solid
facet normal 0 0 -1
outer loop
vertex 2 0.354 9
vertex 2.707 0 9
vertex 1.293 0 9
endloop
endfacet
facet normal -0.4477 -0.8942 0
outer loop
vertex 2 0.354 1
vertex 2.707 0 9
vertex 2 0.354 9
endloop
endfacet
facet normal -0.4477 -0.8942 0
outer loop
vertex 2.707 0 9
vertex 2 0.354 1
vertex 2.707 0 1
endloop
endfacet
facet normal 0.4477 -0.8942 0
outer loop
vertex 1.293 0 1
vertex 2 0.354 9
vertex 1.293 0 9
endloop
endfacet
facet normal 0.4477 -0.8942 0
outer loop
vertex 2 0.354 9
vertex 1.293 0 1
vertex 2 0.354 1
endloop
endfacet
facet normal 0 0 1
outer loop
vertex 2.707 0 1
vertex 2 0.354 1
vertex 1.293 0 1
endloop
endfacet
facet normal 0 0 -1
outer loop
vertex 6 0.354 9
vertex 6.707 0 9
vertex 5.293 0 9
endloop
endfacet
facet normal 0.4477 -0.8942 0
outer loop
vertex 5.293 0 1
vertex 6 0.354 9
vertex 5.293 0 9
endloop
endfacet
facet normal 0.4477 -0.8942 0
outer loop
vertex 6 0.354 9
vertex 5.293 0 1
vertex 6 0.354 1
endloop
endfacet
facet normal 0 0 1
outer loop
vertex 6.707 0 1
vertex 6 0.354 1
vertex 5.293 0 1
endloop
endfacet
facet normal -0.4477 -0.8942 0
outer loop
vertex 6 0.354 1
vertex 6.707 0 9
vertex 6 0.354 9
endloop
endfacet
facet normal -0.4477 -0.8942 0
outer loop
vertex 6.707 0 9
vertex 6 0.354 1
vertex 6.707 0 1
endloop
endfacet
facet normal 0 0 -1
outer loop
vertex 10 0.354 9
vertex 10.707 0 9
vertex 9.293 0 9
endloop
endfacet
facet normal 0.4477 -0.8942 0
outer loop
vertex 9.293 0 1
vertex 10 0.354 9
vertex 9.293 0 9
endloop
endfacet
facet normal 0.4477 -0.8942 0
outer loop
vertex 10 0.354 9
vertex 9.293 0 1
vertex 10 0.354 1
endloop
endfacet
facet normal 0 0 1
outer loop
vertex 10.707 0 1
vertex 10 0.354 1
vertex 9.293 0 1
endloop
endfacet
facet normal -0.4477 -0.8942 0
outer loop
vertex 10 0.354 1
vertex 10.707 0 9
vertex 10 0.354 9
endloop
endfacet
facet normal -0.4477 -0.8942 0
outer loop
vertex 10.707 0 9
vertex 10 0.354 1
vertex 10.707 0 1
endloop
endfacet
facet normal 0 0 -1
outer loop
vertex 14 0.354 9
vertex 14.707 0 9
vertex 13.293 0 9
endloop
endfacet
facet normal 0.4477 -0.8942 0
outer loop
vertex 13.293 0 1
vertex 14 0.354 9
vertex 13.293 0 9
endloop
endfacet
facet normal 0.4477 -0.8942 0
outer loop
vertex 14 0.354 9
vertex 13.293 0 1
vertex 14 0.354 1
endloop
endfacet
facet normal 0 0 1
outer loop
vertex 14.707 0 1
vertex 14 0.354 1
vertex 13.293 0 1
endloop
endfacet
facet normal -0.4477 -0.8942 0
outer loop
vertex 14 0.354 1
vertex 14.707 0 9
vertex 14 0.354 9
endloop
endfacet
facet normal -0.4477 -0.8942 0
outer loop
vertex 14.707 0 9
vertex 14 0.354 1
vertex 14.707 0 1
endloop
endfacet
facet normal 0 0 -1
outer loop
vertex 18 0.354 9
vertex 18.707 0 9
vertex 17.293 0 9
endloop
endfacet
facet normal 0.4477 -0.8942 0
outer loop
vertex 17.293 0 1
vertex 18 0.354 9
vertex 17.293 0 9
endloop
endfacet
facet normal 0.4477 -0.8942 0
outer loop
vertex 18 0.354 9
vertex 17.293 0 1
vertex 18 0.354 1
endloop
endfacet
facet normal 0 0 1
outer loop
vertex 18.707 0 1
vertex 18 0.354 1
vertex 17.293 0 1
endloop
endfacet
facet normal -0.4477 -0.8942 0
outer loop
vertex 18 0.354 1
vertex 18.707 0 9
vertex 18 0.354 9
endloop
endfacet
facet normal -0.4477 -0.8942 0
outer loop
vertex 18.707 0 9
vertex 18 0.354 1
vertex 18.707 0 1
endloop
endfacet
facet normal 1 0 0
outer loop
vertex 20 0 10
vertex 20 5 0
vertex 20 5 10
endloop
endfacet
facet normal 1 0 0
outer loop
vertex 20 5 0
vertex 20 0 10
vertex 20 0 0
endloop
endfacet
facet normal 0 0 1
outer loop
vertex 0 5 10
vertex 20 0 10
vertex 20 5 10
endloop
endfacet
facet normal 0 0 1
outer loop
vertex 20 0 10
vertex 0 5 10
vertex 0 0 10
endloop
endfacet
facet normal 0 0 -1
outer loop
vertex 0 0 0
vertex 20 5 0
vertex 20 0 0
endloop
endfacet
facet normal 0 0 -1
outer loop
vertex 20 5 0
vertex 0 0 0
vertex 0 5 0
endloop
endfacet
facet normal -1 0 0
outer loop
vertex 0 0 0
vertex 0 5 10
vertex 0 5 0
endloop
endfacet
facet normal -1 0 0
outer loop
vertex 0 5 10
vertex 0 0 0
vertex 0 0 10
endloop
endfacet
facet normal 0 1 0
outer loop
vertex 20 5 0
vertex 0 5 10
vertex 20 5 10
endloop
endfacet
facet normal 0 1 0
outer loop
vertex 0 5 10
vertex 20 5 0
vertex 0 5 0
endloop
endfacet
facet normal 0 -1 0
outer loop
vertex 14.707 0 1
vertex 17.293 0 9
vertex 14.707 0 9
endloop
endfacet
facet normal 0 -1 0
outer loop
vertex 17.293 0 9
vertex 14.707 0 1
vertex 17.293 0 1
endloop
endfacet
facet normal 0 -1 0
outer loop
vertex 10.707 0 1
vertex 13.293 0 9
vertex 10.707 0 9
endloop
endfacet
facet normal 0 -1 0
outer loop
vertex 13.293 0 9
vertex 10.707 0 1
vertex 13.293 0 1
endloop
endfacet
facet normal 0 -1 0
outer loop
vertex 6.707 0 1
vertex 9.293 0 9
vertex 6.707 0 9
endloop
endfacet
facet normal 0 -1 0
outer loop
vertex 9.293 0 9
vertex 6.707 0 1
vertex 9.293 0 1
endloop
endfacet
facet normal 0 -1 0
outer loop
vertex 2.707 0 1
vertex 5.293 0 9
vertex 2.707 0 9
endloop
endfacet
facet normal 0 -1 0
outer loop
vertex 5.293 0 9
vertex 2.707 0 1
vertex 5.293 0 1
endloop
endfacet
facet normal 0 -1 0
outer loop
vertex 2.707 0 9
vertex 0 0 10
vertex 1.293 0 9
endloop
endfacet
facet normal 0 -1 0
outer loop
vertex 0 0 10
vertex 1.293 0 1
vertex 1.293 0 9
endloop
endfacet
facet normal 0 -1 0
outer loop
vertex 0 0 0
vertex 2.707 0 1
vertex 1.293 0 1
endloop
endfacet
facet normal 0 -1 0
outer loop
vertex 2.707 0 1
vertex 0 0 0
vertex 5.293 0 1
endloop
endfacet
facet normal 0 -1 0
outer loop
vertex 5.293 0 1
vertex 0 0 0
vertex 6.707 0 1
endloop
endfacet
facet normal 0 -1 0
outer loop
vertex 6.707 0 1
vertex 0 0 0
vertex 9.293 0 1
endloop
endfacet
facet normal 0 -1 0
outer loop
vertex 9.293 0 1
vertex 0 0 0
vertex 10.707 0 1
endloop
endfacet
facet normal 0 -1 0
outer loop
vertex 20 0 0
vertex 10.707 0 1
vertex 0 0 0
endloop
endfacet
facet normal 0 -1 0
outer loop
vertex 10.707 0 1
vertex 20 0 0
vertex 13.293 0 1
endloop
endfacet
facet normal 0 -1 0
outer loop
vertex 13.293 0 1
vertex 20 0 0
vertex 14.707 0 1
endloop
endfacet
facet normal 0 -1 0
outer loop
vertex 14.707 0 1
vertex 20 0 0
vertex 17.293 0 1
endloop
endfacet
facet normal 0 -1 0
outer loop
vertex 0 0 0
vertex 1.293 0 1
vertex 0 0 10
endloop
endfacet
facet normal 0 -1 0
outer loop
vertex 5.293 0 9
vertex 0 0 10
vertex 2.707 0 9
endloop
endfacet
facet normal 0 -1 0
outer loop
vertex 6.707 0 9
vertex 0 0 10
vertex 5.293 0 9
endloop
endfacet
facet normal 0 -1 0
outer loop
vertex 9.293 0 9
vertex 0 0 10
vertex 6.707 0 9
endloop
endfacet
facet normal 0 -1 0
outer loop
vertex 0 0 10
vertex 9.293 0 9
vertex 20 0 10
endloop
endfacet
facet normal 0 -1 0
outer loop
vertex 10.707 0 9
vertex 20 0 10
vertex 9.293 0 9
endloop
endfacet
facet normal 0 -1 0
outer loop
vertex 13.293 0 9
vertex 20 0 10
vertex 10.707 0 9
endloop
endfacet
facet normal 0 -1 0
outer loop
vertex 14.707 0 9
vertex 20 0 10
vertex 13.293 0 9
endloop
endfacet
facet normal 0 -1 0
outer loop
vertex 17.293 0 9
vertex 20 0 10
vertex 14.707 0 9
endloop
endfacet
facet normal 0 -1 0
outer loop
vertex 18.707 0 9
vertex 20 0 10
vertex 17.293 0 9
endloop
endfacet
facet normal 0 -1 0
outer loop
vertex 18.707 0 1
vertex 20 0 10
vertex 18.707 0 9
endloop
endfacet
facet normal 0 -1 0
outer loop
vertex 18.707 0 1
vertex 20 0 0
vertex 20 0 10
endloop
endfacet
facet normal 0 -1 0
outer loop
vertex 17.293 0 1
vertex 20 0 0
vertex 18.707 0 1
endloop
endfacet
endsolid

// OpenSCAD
difference() {
    h = 10;
    d = 1;
    m = 1;

    cube([20, 5, h]);
    
    for (x=[2:4:20-2])
        translate([x, 0, m])

        scale([1, .5, 1])
        rotate([0, 0, 45])
        translate([-d/2, -d/2, 0])
        cube([d, d, h - m*2]);
}
